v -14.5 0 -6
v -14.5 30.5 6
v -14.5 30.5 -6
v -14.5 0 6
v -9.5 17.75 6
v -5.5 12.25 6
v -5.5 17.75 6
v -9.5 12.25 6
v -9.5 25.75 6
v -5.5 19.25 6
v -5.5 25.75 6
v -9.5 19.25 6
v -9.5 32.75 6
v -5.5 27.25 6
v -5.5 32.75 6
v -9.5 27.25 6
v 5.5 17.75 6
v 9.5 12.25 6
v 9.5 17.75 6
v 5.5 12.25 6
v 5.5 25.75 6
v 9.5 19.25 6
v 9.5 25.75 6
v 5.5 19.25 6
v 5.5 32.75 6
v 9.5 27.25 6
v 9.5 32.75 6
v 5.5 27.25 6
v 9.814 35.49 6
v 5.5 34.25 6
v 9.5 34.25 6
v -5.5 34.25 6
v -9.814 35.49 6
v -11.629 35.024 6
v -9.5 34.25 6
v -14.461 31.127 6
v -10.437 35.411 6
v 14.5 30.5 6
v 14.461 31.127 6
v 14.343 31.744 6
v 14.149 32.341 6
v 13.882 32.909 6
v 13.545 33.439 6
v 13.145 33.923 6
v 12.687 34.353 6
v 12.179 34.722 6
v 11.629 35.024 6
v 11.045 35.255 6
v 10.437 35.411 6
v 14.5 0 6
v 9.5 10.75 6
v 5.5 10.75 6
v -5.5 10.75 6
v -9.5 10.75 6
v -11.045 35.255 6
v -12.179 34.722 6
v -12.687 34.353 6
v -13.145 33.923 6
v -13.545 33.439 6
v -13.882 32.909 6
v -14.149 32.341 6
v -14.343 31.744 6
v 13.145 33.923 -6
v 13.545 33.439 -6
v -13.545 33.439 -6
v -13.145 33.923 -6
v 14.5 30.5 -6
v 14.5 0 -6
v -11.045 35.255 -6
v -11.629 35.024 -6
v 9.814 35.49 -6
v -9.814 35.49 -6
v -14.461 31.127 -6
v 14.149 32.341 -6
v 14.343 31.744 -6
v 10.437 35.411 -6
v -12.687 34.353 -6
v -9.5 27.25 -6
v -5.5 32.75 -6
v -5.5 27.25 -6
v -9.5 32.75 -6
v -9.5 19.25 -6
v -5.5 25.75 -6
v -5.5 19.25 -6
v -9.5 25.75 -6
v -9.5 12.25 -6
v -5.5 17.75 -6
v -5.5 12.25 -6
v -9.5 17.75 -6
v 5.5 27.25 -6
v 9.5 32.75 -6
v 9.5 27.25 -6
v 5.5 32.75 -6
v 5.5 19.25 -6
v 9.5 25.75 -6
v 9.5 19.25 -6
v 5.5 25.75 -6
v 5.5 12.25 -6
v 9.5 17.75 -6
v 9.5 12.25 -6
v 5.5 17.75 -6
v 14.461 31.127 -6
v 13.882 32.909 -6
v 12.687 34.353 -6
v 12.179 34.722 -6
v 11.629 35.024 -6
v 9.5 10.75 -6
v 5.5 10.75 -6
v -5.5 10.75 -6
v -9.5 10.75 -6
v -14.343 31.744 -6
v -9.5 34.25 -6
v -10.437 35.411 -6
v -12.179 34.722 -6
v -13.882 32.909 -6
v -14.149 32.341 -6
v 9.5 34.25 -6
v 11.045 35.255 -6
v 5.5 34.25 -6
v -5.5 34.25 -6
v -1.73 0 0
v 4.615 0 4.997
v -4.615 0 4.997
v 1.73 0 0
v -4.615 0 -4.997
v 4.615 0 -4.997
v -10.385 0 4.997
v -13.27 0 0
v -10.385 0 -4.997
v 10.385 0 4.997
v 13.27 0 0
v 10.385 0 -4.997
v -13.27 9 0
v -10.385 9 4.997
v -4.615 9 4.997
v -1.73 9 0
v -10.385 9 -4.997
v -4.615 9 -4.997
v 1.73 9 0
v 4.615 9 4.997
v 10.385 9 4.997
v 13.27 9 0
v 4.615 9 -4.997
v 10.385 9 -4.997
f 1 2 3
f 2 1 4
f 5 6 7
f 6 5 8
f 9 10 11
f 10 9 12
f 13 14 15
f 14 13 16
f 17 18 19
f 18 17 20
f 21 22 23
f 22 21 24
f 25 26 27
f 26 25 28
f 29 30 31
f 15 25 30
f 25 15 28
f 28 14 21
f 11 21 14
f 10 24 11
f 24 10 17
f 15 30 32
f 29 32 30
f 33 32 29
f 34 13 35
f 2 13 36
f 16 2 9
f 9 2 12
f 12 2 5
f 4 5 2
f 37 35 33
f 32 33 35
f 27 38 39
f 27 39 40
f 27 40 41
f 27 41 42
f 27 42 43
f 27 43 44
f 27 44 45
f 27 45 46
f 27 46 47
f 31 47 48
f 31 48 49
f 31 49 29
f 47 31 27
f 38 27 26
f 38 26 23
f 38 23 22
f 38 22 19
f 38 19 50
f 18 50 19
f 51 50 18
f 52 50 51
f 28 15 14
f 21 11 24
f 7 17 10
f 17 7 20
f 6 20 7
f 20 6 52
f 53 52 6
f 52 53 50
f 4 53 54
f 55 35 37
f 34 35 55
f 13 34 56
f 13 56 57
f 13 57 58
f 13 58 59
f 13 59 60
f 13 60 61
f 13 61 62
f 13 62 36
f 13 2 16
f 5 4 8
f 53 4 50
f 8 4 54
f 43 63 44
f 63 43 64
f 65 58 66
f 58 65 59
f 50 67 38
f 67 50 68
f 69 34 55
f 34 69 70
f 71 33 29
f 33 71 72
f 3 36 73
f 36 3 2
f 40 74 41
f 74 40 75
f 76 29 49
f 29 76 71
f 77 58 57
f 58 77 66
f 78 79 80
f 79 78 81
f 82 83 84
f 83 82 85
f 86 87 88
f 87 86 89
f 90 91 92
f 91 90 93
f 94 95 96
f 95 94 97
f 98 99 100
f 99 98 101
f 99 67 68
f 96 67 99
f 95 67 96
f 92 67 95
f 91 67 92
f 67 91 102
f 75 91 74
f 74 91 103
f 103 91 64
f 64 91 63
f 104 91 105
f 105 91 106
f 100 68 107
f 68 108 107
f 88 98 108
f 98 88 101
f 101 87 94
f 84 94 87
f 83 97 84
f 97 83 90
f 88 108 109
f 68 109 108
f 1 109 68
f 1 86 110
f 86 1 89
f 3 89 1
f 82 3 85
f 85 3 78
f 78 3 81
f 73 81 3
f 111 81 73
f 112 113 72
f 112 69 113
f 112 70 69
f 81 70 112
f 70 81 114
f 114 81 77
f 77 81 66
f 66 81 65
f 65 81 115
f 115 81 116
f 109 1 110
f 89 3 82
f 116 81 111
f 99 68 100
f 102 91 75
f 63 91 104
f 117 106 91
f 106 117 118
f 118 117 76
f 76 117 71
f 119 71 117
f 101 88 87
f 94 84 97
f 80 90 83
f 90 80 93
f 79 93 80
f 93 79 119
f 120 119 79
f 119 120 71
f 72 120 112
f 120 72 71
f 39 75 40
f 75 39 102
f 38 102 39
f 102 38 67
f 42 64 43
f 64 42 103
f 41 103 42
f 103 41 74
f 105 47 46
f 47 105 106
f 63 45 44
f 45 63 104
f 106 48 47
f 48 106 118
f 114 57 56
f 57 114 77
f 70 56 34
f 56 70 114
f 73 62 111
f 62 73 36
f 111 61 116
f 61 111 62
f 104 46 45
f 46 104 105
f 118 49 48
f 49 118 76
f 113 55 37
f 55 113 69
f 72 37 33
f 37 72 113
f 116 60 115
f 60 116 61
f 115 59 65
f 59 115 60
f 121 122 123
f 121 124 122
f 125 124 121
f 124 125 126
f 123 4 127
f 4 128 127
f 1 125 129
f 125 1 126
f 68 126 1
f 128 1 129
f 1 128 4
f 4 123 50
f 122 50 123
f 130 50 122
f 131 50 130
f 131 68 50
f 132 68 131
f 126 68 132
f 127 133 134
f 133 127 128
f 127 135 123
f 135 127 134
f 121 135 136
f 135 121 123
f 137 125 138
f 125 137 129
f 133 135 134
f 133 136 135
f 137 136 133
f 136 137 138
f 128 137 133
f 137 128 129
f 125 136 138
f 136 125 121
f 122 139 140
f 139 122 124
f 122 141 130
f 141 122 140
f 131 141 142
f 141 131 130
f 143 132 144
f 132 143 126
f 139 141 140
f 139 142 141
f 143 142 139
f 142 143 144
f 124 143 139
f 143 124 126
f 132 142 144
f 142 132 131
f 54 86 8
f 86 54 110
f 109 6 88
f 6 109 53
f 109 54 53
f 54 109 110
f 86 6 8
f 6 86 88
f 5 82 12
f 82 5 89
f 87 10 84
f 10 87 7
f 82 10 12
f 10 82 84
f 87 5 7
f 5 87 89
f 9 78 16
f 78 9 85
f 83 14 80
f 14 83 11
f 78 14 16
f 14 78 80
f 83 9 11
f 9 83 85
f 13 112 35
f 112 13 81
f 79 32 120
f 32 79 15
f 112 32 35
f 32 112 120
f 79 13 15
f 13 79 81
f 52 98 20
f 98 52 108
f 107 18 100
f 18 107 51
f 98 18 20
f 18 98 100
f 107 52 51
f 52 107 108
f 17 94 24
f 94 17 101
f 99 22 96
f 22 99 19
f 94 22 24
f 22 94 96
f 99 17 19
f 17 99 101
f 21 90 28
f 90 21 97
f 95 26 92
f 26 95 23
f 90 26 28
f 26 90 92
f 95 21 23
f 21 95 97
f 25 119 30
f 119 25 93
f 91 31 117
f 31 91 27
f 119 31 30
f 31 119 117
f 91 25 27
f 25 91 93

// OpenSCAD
$fn = 50;


difference() {
	union() {
		translate(v = [0, 21.0000000000, -6.0000000000]) {
			hull() {
				translate(v = [-9.5000000000, 9.5000000000, 0]) {
					cylinder(h = 12, r = 5);
				}
				translate(v = [9.5000000000, 9.5000000000, 0]) {
					cylinder(h = 12, r = 5);
				}
				translate(v = [-9.5000000000, -9.5000000000, 0]) {
					cylinder(h = 12, r = 5);
				}
				translate(v = [9.5000000000, -9.5000000000, 0]) {
					cylinder(h = 12, r = 5);
				}
			}
		}
		translate(v = [0, 21.0000000000, -6.0000000000]) {
			hull() {
				translate(v = [-9.5000000000, 9.5000000000, 0]) {
					cylinder(h = 12, r = 5);
				}
				translate(v = [9.5000000000, 9.5000000000, 0]) {
					cylinder(h = 12, r = 5);
				}
				translate(v = [-9.5000000000, -9.5000000000, 0]) {
					cylinder(h = 12, r = 5);
				}
				translate(v = [9.5000000000, -9.5000000000, 0]) {
					cylinder(h = 12, r = 5);
				}
			}
		}
		translate(v = [-14.5000000000, 0, -6.0000000000]) {
			cube(size = [29, 13.5000000000, 12]);
		}
	}
	union() {
		translate(v = [-7.5000000000, 9, 0]) {
			rotate(a = [0, 0, 0]) {
				difference() {
					union() {
						rotate(a = [90, 0, 0]) {
							linear_extrude(height = 13.5000000000) {
								polygon(points = [[5.7700000000, 0.0000000000], [2.8850000000, 4.9969665798], [-2.8850000000, 4.9969665798], [-5.7700000000, 0.0000000000], [-2.8850000000, -4.9969665798], [2.8850000000, -4.9969665798]]);
							}
						}
					}
					union();
				}
			}
		}
		translate(v = [7.5000000000, 9, 0]) {
			rotate(a = [0, 0, 0]) {
				difference() {
					union() {
						rotate(a = [90, 0, 0]) {
							linear_extrude(height = 13.5000000000) {
								polygon(points = [[5.7700000000, 0.0000000000], [2.8850000000, 4.9969665798], [-2.8850000000, 4.9969665798], [-5.7700000000, 0.0000000000], [-2.8850000000, -4.9969665798], [2.8850000000, -4.9969665798]]);
							}
						}
					}
					union();
				}
			}
		}
		translate(v = [-9.5000000000, 10.7500000000, -50]) {
			cube(size = [4, 1.5000000000, 100]);
		}
		translate(v = [-9.5000000000, 17.7500000000, -50]) {
			cube(size = [4, 1.5000000000, 100]);
		}
		translate(v = [-9.5000000000, 25.7500000000, -50]) {
			cube(size = [4, 1.5000000000, 100]);
		}
		translate(v = [-9.5000000000, 32.7500000000, -50]) {
			cube(size = [4, 1.5000000000, 100]);
		}
		translate(v = [-7.5000000000, 8, 0]) {
			rotate(a = [90, 0, 0]) {
				cylinder(h = 8, r = 3.0000000000);
			}
		}
		translate(v = [5.5000000000, 10.7500000000, -50]) {
			cube(size = [4, 1.5000000000, 100]);
		}
		translate(v = [5.5000000000, 17.7500000000, -50]) {
			cube(size = [4, 1.5000000000, 100]);
		}
		translate(v = [5.5000000000, 25.7500000000, -50]) {
			cube(size = [4, 1.5000000000, 100]);
		}
		translate(v = [5.5000000000, 32.7500000000, -50]) {
			cube(size = [4, 1.5000000000, 100]);
		}
		translate(v = [7.5000000000, 8, 0]) {
			rotate(a = [90, 0, 0]) {
				cylinder(h = 8, r = 3.0000000000);
			}
		}
	}
}
